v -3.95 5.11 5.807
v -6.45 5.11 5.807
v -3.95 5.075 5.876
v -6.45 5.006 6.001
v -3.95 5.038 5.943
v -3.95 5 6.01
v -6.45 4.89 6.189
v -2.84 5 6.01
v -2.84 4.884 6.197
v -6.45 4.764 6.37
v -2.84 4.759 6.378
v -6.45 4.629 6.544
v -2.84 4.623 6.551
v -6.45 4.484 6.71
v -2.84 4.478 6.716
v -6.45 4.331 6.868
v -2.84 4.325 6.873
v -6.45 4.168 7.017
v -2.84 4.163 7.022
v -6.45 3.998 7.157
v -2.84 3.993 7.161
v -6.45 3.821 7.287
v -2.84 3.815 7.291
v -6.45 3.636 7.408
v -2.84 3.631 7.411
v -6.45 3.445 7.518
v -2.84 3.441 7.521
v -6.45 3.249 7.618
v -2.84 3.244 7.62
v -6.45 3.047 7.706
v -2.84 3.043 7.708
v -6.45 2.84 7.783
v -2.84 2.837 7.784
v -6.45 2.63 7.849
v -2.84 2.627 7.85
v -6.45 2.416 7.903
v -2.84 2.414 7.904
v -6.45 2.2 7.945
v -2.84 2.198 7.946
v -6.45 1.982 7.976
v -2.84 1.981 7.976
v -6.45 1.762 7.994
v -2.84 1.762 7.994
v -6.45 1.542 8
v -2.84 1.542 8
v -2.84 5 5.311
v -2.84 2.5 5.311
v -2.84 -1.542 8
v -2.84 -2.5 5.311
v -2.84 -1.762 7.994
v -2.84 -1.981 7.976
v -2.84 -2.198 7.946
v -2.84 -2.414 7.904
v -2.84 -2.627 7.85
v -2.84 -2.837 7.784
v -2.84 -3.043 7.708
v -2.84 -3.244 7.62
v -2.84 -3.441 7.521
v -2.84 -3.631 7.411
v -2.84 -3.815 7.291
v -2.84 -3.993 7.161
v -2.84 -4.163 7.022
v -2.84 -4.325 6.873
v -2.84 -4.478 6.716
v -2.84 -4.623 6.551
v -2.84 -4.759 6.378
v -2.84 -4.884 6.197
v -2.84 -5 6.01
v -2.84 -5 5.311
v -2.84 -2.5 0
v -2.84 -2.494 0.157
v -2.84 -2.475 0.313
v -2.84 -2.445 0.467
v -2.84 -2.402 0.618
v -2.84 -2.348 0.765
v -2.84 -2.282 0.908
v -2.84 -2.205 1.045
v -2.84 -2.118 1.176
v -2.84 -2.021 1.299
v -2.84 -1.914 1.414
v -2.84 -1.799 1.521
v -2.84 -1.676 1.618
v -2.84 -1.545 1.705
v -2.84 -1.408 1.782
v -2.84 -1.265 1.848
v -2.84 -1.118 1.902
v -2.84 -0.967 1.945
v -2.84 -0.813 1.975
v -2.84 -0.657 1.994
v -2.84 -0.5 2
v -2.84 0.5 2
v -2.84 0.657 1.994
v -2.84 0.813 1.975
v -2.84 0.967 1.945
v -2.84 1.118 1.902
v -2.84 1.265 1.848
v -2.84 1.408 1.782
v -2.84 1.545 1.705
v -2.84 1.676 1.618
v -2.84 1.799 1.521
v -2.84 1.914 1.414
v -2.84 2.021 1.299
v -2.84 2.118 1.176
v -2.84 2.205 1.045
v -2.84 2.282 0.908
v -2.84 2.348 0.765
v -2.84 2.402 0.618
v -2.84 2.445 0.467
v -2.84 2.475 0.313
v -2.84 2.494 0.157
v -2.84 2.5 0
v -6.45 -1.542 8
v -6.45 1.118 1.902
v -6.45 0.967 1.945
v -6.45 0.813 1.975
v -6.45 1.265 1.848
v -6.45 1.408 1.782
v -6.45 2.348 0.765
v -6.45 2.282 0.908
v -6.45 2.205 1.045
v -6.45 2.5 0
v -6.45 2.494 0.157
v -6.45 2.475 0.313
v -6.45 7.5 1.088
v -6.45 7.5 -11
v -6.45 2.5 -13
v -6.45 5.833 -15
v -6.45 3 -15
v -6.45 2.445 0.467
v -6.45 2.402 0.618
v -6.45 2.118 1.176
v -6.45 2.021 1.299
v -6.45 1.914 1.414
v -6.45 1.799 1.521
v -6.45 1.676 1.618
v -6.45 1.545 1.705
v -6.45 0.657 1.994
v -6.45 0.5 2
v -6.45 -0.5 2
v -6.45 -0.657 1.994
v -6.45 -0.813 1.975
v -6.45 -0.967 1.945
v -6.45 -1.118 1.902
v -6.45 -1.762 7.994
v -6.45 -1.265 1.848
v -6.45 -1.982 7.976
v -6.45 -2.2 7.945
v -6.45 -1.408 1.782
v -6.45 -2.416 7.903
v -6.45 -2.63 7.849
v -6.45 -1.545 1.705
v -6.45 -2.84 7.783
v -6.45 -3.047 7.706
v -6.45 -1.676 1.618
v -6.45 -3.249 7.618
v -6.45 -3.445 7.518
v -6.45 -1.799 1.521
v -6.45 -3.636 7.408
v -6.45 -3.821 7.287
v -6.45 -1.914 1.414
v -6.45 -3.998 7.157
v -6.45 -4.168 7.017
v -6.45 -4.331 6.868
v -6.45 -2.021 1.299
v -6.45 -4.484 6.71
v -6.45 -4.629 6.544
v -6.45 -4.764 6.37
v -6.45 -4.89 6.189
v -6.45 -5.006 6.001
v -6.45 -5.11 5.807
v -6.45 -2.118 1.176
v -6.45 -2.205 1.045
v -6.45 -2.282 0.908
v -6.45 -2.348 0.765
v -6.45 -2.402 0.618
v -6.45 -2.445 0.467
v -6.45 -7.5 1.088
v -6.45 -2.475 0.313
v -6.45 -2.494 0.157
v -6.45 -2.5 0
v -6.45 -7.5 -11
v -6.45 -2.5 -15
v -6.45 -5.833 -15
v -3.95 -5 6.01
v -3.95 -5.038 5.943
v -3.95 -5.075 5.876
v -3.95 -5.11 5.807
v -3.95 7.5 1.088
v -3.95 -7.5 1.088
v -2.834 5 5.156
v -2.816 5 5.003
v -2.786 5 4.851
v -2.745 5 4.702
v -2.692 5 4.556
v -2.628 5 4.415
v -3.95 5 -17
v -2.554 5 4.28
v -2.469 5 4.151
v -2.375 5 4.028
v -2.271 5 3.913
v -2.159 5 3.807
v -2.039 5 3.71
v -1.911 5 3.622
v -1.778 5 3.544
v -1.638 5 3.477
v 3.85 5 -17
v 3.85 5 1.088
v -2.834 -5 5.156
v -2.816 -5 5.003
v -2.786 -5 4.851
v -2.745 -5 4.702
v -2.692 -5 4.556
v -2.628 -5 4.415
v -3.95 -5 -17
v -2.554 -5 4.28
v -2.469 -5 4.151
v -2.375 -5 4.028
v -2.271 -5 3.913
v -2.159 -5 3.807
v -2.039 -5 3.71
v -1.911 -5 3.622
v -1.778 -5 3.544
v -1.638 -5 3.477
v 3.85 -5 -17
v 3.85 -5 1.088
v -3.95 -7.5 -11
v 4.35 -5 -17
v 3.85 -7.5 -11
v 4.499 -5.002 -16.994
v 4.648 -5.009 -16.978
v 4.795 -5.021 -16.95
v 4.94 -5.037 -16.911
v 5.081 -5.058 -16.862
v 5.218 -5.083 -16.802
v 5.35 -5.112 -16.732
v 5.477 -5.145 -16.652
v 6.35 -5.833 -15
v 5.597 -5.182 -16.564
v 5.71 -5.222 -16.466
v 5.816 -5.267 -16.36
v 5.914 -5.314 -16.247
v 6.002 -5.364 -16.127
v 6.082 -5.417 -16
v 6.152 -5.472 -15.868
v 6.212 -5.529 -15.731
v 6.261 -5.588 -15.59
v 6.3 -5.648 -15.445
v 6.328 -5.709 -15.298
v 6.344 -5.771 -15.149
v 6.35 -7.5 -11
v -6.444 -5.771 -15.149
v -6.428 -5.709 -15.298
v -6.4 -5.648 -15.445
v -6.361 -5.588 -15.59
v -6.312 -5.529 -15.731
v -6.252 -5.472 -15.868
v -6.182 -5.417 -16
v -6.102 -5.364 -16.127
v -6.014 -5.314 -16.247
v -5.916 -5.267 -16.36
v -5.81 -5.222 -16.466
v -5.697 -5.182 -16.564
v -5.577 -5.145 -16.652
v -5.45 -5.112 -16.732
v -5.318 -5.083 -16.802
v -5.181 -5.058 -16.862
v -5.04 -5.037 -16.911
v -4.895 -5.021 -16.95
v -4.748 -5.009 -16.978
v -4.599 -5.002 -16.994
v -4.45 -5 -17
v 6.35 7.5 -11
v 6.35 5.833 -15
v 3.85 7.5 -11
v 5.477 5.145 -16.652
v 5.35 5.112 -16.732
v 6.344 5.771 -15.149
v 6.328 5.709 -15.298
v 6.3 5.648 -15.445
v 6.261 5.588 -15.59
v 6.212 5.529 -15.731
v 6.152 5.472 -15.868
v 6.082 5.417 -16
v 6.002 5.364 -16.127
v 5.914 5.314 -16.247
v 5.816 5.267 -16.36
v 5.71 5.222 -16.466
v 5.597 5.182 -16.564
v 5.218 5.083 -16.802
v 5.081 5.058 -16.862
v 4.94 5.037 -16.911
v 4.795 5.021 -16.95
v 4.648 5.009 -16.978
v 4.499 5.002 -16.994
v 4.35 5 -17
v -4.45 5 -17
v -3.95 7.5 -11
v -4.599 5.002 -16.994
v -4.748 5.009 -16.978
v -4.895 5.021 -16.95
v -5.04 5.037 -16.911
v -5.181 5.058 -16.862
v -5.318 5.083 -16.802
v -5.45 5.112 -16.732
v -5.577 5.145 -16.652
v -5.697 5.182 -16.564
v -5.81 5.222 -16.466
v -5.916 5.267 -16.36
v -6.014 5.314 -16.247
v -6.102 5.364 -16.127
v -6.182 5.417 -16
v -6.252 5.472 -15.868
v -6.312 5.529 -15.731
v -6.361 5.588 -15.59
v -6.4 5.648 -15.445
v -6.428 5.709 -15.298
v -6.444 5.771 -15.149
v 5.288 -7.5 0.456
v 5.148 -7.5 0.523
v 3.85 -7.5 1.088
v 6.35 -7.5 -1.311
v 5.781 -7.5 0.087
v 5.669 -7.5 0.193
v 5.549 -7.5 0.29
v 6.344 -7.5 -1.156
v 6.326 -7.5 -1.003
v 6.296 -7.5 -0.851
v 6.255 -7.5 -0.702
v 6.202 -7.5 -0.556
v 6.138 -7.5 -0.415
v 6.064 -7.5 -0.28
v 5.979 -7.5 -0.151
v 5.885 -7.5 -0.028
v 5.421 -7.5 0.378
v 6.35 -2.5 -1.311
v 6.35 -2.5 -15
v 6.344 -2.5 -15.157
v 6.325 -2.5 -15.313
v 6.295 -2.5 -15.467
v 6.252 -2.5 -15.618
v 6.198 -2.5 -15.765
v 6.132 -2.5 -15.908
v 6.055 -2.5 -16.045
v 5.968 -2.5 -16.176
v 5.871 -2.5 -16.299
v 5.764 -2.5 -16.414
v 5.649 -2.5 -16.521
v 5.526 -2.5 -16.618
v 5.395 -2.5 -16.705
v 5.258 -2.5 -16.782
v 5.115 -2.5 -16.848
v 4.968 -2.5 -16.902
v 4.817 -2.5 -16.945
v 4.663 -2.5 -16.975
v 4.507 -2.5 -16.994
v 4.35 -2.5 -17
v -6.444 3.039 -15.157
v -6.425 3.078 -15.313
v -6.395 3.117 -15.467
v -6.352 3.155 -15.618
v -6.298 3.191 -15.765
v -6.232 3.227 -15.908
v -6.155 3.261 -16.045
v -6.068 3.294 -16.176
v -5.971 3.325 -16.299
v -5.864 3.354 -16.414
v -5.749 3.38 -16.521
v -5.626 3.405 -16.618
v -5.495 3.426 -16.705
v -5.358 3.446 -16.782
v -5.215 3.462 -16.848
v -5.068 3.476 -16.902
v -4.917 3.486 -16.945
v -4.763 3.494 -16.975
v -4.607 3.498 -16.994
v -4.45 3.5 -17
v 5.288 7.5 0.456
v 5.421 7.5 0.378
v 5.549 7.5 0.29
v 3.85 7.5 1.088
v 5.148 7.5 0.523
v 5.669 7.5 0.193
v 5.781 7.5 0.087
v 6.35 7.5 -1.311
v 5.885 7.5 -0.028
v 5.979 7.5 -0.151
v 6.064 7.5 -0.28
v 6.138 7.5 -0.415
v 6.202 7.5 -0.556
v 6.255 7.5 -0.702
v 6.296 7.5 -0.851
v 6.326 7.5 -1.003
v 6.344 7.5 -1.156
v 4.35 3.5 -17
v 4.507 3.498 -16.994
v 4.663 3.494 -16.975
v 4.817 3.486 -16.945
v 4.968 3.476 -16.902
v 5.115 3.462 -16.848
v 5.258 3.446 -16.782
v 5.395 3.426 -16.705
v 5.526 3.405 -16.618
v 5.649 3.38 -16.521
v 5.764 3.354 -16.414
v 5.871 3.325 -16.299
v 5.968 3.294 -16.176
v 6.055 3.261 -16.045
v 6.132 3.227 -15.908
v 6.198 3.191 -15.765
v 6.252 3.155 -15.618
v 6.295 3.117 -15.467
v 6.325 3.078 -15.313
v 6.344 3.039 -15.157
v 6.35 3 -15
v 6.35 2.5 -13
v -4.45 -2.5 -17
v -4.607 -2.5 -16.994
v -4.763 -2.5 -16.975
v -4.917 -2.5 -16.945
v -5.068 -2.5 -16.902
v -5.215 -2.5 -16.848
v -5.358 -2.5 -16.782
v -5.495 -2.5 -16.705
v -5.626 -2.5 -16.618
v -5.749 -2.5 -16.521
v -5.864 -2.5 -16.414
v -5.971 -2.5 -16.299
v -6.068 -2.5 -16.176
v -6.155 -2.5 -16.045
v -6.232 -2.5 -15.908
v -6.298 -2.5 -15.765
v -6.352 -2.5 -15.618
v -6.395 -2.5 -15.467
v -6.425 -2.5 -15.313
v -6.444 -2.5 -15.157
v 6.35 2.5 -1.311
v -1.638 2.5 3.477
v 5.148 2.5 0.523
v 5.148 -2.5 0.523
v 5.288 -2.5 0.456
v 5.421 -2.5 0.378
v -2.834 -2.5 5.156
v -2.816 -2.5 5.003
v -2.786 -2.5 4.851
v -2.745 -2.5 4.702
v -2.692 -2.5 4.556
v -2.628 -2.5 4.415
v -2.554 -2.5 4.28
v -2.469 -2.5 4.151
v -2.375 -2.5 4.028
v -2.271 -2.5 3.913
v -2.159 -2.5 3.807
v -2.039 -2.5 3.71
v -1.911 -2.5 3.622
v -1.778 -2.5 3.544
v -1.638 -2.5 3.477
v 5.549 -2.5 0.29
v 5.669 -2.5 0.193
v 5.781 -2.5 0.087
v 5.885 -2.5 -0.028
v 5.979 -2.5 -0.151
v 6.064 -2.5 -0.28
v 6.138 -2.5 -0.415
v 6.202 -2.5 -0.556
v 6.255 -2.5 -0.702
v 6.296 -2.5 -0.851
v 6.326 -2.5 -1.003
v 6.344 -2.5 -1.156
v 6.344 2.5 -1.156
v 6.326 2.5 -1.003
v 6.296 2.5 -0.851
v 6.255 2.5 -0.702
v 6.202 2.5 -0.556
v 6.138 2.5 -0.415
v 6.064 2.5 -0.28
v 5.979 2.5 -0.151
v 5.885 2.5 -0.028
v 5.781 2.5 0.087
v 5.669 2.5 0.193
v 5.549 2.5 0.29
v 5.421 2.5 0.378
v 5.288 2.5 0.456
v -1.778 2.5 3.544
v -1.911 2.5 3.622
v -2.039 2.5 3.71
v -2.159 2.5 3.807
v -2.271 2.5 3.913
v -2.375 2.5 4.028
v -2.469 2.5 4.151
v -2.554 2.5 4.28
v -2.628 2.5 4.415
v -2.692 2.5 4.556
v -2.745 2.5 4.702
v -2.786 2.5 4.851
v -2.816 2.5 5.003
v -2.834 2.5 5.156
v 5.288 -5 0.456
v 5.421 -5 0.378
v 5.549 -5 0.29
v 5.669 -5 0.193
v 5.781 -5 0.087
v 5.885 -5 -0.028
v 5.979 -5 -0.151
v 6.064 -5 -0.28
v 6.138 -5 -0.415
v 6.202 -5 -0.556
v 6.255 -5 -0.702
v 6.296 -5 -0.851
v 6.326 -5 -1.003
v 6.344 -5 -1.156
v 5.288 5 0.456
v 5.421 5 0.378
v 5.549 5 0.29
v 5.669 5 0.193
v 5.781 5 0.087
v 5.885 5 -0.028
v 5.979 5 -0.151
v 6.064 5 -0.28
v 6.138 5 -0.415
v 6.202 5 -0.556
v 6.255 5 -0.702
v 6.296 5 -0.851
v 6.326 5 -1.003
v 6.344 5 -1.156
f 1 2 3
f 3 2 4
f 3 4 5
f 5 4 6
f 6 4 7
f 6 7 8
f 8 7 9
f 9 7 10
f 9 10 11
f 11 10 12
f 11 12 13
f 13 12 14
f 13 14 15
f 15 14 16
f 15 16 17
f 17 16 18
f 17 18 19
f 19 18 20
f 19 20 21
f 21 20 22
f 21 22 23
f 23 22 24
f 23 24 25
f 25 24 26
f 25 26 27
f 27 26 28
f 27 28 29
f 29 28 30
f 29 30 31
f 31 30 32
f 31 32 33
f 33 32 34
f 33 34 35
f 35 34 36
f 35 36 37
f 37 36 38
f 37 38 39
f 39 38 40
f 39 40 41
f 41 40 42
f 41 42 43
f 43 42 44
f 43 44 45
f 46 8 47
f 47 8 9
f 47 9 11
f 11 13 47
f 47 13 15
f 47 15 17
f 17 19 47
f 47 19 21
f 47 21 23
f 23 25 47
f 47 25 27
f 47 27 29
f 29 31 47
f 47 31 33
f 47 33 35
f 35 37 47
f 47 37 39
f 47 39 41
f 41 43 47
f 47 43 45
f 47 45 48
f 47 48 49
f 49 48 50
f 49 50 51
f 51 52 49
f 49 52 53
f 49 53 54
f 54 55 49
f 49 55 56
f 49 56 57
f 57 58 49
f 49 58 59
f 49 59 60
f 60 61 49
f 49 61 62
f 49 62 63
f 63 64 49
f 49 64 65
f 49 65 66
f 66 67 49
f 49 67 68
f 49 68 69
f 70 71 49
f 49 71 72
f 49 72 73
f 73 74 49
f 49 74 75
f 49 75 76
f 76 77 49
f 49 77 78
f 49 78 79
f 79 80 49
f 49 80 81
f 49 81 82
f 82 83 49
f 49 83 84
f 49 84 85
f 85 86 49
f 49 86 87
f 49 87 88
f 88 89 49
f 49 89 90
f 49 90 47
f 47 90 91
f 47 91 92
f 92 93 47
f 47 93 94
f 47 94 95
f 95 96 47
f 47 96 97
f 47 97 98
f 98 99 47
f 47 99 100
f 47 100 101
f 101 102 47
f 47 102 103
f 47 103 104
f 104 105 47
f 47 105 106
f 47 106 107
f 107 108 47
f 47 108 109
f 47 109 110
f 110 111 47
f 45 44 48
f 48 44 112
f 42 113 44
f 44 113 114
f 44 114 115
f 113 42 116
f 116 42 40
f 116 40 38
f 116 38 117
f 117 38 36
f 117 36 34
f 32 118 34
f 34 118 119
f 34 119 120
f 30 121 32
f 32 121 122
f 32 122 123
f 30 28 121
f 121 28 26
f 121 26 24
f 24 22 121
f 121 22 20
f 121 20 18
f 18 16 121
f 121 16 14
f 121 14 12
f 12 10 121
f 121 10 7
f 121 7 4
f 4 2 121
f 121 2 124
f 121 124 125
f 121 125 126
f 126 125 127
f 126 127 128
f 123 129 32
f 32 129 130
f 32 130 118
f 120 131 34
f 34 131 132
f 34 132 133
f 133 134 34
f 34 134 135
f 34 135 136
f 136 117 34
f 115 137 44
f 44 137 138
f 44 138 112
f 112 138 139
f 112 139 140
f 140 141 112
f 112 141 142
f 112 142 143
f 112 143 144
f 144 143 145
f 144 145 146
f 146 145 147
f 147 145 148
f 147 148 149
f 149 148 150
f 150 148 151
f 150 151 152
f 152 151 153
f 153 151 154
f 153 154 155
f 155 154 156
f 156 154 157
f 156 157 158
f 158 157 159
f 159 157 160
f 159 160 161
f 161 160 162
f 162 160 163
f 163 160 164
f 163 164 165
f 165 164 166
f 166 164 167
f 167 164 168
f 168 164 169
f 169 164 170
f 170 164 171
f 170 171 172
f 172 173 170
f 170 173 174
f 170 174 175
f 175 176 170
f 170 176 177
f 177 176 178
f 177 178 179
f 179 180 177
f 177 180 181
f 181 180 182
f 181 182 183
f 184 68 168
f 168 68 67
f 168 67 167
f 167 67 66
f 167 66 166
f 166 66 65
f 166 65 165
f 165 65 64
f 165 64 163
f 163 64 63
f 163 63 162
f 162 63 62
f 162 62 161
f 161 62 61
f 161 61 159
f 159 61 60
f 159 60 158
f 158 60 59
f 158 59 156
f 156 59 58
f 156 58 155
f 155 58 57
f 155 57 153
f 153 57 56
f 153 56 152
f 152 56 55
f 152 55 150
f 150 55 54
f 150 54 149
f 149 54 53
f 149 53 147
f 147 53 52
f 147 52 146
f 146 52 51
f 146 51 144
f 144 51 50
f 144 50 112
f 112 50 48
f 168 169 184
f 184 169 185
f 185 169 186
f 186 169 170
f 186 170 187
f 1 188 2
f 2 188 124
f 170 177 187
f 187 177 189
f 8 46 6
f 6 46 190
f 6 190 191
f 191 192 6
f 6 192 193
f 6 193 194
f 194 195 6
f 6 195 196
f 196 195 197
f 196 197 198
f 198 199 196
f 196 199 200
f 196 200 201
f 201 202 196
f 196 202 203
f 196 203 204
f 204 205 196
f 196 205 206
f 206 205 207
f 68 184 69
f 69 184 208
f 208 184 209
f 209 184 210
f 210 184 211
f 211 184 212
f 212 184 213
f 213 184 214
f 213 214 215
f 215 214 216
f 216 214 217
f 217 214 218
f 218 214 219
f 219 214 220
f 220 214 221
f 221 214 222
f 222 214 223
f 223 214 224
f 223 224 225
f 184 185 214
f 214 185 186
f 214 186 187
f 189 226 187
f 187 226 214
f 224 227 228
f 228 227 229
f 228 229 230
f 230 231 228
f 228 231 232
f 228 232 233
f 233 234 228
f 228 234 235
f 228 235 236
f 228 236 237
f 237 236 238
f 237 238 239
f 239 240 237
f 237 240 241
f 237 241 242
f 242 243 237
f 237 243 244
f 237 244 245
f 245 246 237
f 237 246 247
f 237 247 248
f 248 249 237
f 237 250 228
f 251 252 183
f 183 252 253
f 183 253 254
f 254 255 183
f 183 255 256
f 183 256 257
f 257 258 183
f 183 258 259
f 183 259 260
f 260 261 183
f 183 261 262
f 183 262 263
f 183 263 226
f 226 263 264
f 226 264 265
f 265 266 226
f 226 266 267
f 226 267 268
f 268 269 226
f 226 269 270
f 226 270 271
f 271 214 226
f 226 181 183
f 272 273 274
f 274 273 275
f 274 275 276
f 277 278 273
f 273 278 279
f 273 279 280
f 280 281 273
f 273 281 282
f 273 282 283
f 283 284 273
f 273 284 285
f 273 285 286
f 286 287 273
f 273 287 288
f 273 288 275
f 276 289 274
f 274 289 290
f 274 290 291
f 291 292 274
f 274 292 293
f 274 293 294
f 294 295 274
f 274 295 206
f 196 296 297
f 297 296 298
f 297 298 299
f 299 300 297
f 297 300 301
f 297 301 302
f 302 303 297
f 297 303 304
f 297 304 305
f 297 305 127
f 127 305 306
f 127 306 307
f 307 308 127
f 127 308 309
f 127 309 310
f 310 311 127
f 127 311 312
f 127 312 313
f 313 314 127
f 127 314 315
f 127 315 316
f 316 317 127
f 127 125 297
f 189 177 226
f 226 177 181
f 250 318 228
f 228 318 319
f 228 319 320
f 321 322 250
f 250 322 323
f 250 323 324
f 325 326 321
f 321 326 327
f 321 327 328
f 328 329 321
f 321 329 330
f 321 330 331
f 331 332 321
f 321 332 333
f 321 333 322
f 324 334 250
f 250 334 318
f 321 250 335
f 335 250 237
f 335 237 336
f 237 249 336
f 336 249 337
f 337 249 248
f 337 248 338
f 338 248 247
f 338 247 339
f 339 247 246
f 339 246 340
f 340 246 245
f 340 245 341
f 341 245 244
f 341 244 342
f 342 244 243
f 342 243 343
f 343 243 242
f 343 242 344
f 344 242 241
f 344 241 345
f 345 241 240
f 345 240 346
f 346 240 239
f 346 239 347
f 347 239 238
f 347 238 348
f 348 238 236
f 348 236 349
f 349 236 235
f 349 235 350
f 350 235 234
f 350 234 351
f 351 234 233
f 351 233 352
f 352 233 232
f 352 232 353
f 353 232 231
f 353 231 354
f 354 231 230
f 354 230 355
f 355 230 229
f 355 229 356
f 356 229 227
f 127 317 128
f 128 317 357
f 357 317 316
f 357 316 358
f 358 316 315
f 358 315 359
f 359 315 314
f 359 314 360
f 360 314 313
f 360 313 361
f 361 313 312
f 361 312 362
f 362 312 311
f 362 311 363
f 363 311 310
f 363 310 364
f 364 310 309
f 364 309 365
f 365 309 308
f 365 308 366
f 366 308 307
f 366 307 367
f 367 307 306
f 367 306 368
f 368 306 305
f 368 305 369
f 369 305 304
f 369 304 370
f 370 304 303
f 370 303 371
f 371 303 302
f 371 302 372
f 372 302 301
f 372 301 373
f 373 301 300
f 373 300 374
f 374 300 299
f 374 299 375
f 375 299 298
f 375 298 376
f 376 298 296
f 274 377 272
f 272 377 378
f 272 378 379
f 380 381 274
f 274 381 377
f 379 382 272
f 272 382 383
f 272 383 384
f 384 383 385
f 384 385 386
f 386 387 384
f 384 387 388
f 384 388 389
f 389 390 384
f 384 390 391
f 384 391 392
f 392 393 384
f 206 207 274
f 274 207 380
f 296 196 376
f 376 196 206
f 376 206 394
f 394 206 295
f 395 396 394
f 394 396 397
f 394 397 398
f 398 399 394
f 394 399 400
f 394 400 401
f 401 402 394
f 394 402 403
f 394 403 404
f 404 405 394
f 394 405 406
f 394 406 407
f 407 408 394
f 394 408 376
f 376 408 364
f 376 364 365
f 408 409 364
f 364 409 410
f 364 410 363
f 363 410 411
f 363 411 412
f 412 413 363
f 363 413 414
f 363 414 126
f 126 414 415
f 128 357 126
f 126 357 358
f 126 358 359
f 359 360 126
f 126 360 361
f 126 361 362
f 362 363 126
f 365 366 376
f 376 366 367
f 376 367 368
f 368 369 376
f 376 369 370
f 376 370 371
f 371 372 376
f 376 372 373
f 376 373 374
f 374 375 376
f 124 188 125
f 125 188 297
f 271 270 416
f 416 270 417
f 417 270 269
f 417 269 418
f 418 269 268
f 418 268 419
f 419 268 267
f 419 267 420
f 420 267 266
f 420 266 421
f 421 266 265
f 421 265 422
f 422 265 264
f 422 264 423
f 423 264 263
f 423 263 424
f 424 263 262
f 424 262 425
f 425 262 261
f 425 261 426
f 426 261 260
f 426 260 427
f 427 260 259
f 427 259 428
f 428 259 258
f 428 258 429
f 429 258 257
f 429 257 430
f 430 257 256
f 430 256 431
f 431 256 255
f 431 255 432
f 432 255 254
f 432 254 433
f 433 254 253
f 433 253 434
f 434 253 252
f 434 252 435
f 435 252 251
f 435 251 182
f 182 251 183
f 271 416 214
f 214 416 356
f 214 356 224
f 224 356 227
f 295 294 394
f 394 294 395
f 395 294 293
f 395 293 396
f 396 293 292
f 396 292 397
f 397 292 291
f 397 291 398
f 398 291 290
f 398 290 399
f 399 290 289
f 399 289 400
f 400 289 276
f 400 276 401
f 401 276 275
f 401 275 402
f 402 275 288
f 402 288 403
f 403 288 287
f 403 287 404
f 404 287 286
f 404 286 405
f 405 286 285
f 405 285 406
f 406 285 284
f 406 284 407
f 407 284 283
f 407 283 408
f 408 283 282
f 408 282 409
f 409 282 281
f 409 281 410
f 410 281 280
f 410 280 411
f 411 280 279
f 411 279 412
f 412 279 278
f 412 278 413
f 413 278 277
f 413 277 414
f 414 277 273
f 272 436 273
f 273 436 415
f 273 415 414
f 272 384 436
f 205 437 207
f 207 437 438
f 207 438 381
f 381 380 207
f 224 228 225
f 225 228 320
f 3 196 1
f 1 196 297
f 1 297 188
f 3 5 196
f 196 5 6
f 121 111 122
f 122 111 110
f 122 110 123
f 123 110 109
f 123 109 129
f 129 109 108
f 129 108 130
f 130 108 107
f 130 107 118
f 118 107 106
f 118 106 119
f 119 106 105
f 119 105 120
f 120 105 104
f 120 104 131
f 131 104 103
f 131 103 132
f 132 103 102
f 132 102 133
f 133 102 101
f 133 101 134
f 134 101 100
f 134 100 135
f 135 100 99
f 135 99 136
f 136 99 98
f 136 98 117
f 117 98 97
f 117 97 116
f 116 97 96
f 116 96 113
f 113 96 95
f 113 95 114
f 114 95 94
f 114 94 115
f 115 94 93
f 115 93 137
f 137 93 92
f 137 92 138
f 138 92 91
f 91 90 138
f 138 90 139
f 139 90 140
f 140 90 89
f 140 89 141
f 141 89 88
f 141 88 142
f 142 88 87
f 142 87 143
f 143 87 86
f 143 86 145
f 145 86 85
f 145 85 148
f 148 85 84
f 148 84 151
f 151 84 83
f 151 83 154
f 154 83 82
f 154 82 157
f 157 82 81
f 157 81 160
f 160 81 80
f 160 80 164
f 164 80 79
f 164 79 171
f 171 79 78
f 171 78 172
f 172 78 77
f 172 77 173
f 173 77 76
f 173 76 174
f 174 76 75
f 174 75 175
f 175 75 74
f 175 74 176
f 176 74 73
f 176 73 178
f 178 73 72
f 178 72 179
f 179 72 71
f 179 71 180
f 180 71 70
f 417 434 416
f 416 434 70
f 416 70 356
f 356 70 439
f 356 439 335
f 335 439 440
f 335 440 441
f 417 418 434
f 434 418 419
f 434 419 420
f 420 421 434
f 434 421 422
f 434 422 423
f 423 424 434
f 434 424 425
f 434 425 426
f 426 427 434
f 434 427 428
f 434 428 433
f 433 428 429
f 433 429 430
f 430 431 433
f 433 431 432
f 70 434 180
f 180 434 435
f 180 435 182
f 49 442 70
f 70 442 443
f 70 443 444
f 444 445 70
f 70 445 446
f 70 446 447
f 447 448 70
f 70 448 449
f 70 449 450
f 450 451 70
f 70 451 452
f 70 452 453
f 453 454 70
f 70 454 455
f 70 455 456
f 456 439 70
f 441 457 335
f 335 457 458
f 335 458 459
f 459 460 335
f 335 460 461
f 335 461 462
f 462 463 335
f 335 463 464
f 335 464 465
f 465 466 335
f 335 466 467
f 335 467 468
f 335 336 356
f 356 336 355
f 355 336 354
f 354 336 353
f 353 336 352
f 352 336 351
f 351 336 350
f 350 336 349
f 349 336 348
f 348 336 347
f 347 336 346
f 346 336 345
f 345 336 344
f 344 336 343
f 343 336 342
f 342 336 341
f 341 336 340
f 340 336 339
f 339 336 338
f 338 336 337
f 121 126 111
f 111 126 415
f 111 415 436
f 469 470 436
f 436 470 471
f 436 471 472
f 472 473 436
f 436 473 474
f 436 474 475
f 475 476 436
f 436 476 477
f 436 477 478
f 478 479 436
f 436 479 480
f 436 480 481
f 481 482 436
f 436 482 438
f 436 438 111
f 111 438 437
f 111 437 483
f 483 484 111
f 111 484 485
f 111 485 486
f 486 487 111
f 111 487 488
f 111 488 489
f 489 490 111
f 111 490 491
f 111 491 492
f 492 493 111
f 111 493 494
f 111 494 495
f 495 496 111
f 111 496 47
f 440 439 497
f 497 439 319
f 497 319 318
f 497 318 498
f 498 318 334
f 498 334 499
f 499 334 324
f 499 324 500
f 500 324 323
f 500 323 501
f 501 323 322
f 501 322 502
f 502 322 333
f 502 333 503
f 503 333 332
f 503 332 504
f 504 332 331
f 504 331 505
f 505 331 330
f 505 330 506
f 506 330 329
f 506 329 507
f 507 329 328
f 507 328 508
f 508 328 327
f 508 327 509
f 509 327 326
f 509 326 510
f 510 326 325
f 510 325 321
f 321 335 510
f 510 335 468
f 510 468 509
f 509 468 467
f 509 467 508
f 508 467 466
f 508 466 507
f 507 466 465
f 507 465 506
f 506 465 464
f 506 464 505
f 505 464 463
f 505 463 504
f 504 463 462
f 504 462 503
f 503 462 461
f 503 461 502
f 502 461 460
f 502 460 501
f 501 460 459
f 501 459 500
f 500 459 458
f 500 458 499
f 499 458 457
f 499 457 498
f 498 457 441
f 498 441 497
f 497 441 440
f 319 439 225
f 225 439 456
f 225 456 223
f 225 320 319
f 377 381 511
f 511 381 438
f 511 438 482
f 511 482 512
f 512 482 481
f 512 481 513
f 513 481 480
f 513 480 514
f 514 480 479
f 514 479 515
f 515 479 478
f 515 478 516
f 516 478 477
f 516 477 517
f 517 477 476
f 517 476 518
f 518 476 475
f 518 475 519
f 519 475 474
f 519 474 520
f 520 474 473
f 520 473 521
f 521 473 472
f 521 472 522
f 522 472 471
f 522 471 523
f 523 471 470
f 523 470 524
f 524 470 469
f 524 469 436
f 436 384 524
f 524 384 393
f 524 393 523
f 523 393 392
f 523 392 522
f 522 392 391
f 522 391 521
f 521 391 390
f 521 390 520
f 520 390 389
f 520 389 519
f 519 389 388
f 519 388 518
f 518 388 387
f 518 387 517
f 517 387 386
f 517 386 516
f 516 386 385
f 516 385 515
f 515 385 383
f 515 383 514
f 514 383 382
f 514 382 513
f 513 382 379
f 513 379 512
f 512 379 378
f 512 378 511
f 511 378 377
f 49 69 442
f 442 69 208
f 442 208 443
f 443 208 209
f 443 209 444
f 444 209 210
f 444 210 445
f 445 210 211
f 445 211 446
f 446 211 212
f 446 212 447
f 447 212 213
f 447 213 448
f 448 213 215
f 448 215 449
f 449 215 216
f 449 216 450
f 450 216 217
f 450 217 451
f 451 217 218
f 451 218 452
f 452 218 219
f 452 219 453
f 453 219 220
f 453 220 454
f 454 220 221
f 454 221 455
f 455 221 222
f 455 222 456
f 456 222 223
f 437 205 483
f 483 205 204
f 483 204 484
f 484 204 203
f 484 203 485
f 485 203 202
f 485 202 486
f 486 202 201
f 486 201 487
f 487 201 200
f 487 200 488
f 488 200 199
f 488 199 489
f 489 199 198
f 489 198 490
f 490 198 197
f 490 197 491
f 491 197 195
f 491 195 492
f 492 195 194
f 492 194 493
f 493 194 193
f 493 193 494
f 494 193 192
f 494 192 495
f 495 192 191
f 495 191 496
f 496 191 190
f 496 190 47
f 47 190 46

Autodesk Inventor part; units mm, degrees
ref_plane "YZ Plane" through (0, 0, 0) normal (1, 0, 0) x (0, 1, 0)
ref_plane "XZ Plane" through (0, 0, 0) normal (0, 1, 0) x (-1, 0, 0)
ref_plane "XY Plane" through (0, 0, 0) normal (0, 0, 1) x (1, 0, 0)
sketch "Sketch1" plane through (0, 0, 0) normal (0, 0, 1) x (1, 0, 0)
  line L0 (-4.78, -2.9) -> (4.78, -2.9)
  line L1 (6.35, 2.9) -> (-6.35, 2.9)
  line L2 (-4.78, -2.9) -> (-5.08, -2.9)
  line L3 (-6.35, -2.9) -> (-5.08, -2.9)
  line L4 (-6.35, 2.9) -> (-6.35, -2.9)
  line L5 (5.08, -2.9) -> (4.78, -2.9)
  line L6 (5.08, -2.9) -> (6.35, -2.9)
  line L7 (6.35, 3) -> (-6.45, 3)
  line L8 (-6.45, 3) -> (-6.45, -3)
  line L9 (-6.45, -3) -> (-5.08, -3)
  line L10 (-5.08, -3) -> (-4.78, -3)
  line L11 (-4.78, -3) -> (4.78, -3)
  line L12 (4.78, -3) -> (5.08, -3)
  line L13 (5.08, -3) -> (6.35, -3)
  line L14 (6.35, 5) -> (-8.45, 5)
  line L15 (-8.45, 5) -> (-8.45, -5)
  line L16 (-8.45, -5) -> (-5.08, -5)
  line L17 (-5.08, -5) -> (-4.78, -5)
  line L18 (-4.78, -5) -> (4.78, -5)
  line L19 (4.78, -5) -> (5.08, -5)
  line L20 (5.08, -5) -> (6.35, -5)
  line L21 (6.35, 3) -> (6.35, 5)
  line L22 (6.35, -3) -> (6.35, -5)
  point P0 (0, 0)
extrude "Extrusion1" add sketch "Sketch1" against normal blind 2
sketch "Sketch2" plane through (-8.45, -5, 0) normal (0, -1, 0) x (1, 0, 0)
  line L0 (2.1, -8) -> (2.1, -11.17) projected
  line L1 (0, 0) -> (14.8, 0) projected
  line L2 (2.1, -8) -> (3.37, -8) projected
  line L3 (14.8, 0) -> (14.8, -2) projected
  line L4 (2, 0) -> (14.8, 0) projected
  line L5 (2, 0) -> (14.8, 0)
  line L6 (14.8, 0) -> (14.8, -8)
  line L7 (14.8, -8) -> (2, -8)
  line L8 (2, -8) -> (2, 0)
  point P0 (8.45, 0)
extrude "Extrusion2" add sketch "Sketch2" against normal up to surface (2 mm away)
sketch "Sketch3" plane through (-8.45, 5, 0) normal (0, 1, 0) x (1, 0, 0)
  line L0 (0, 0) -> (14.8, 0) projected
  line L1 (0, 0) -> (0, 2) projected
  line L2 (2, 2) -> (0, 2) projected
  line L3 (2, 2) -> (2, 8) projected
  line L4 (2, 8) -> (14.8, 8) projected
  line L5 (14.8, 0) -> (14.8, 8) projected
  point P0 (8.45, 0)
extrude "Extrusion3" add sketch "Sketch3" against normal up to surface (2 mm away)
sketch "Sketch4" plane through (-8.45, -5, 0) normal (0, -1, 0) x (1, 0, 0)
  line L0 (2, -2) -> (2, -8) projected
  line L1 (0, 0) -> (14.8, 0) projected
  line L2 (3.67, -0.6428) -> (3.67, -14.175) projected
  line L3 (5.61, -0.6428) -> (5.61, -14.175) projected
  line L4 (2, -2) -> (5.61, -2)
  line L5 (5.61, -2) -> (5.61, 4)
  line L6 (5.61, 4) -> (2, 4)
  line L7 (2, 4) -> (2, -2)
  point P0 (8.45, 0)
  point P1 (2, 0)
  point P2 (5.61, 0)
  dimension "d8" = 6
extrude "Extrusion4" add sketch "Sketch4" against normal up to surface (10 mm away) contours L7 L6 L5 L1
sketch "Sketch5" plane through (-8.45, -5, -2) normal (0, -1, 0) x (1, 0, 0)
  line L0 (0, 2) -> (0, 0) projected
  line L1 (0, 2) -> (2, 2) projected
  line L2 (2, 0) -> (0, 0) projected
  line L3 (0, 2) -> (2, 2)
  line L4 (2, 2) -> (2, 0)
  line L5 (2, 0) -> (0, 0)
  line L6 (0, 0) -> (0, 2)
  point P0 (8.45, 2)
extrude "Extrusion5" cut sketch "Sketch5" against normal through all
sketch "Sketch6" plane through (-6.45, -5, -8) normal (0, -1, 0) x (1, 0, 0)
  line L0 (3.61, 8) -> (3.61, 12) projected
  line L1 (3.61, 8) -> (12.8, 8) projected
  line L2 (3.61, 12) -> (12.8, 8)
  point P0 (6.45, 8)
extrude "Extrusion6" add sketch "Sketch6" against normal up to surface (2 mm away)
sketch "Sketch7" plane through (-6.45, 5, -8) normal (0, 1, 0) x (1, 0, 0)
  line L0 (12.8, -8) -> (3.61, -12) projected
  line L1 (12.8, -8) -> (3.61, -8) projected
  line L2 (3.61, -8) -> (3.61, -12) projected
  point P0 (6.45, -8)
extrude "Extrusion7" add sketch "Sketch7" against normal up to surface (2 mm away)
sketch "Sketch8" plane through (-2.84, -3, 0) normal (1, 0, 0) x (0, 0, -1)
  line L0 (0, 6) -> (-4, 6) projected
  line L1 (-4, 0) -> (-4, 6) projected
  line L2 (-4, 0) -> (0, 0) projected
  line L3 (0, 0) -> (0, 6) projected
  line L4 (-4, 0) -> (0, 0) projected
  line L5 (-2, 0) -> (-2, 6)
  point P0 (0, 3)
  point P1 (-2, 0)
extrude "Extrusion8" cut sketch "Sketch8" against normal blind 10 contours L3 L2 L5 L0
sketch "Sketch9" plane through (-6.45, -5, 4) normal (0, 0, 1) x (1, 0, 0)
  line L0 (0, 8) -> (0, 2) projected
  line L1 (3.61, 10) -> (0, 10) projected
  line L2 (0, 0) -> (0, 10) projected
  line L3 (3.61, 0) -> (0, 0) projected
  line L4 (3.61, 0) -> (3.61, 2) projected
  line L5 (3.61, 2) -> (3.61, 8) projected
  line L6 (3.61, 8) -> (3.61, 10) projected
  point P0 (6.45, 5)
  point P1 (0, 2)
extrude "Extrusion9" add sketch "Sketch9" along normal blind 4
fillet "Fillet1" radius 2 4 edges at (-2.84, 4, 4) (-2.84, -4, 4) (6.35, 4, 0) (6.35, -4, 0)
sketch "Sketch10" plane through (6.35, -5, -8) normal (0, 0, -1) x (-1, 0, 0)
  line L0 (12.8, 2) -> (0, 2) projected
  line L1 (0, 0) -> (0, 2) projected
  line L2 (12.8, 0) -> (0, 0) projected
  line L3 (12.8, 0) -> (12.8, 2) projected
  line L4 (0, 8) -> (12.8, 8) projected
  line L5 (12.8, 10) -> (12.8, 8) projected
  line L6 (0, 10) -> (12.8, 10) projected
  line L7 (0, 10) -> (0, 8) projected
  point P0 (6.35, 5)
extrude "Extrusion10" add sketch "Sketch10" along normal blind 4
sketch "Sketch11" plane through (-6.45, 3, 2) normal (0, -1, 0) x (1, 0, 0)
  arc A0 (12.8, -3.3107) -> (11.5982, -1.4769) centre (10.8, -3.3107) ccw projected
  line L0 (4.8118, 1.4769) -> (11.5982, -1.4769) projected
  arc A1 (3.61, 3.3107) -> (4.8118, 1.4769) centre (5.61, 3.3107) ccw projected
  line L1 (3.61, 0) -> (3.61, 3.3107) projected
  line L2 (3.61, 0) -> (0, 0) projected
  line L3 (0, 0) -> (0, -14) projected
  line L4 (12.8, -14) -> (0, -14) projected
  line L5 (12.8, -3.3107) -> (12.8, -14) projected
  point P0 (6.45, -2)
extrude "Extrusion11" add sketch "Sketch11" along normal blind 0.5
sketch "Sketch12" plane through (-6.45, -3, 2) normal (0, 1, 0) x (1, 0, 0)
  arc A0 (11.5982, 1.4769) -> (12.8, 3.3107) centre (10.8, 3.3107) ccw projected
  line L0 (12.8, 3.3107) -> (12.8, 14) projected
  line L1 (0, 14) -> (12.8, 14) projected
  line L2 (0, 0) -> (0, 14) projected
  line L3 (3.61, 0) -> (0, 0) projected
  line L4 (3.61, -3.3107) -> (3.61, 0) projected
  arc A1 (4.8118, -1.4769) -> (3.61, -3.3107) centre (5.61, -3.3107) ccw projected
  line L5 (11.5982, 1.4769) -> (4.8118, -1.4769) projected
  point P0 (6.45, 2)
extrude "Extrusion12" add sketch "Sketch12" along normal blind 0.5
fillet "Fillet3" radius 2 2 edges at (-4.645, -2.5, 2) (-4.645, 2.5, 2)
sketch "Sketch14" plane through (6.35, -5, -12) normal (0, 0, -1) x (-1, 0, 0)
  line L0 (0, 0) -> (0, 2.5) projected
  line L1 (0, 0) -> (12.8, 0) projected
  line L2 (12.8, 0) -> (12.8, 2.5) projected
  line L3 (0, 2.5) -> (12.8, 2.5) projected
  line L4 (12.8, 10) -> (12.8, 7.5) projected
  line L5 (12.8, 10) -> (0, 10) projected
  line L6 (0, 10) -> (0, 7.5) projected
  line L7 (12.8, 7.5) -> (0, 7.5) projected
  point P0 (6.35, 5)
extrude "Extrusion13" add sketch "Sketch14" along normal blind 5
sketch "Sketch15" plane through (6.35, -5, -17) normal (0, 0, -1) x (-1, 0, 0)
  line L0 (12.8, 2.5) -> (0, 2.5) projected
  line L1 (0, 2.5) -> (0, 0) projected
  line L2 (0, 0) -> (12.8, 0) projected
  line L3 (12.8, 0) -> (12.8, 2.5) projected
  line L4 (0, 7.5) -> (12.8, 7.5) projected
  line L5 (12.8, 7.5) -> (12.8, 10) projected
  line L6 (12.8, 10) -> (0, 10) projected
  line L7 (0, 10) -> (0, 7.5) projected
  line L8 (12.8, 0) -> (10.3, 0)
  line L9 (10.3, 0) -> (10.3, -2.5)
  line L10 (10.3, -2.5) -> (12.8, -2.5)
  line L11 (12.8, -2.5) -> (12.8, 0)
  line L12 (12.8, 10) -> (10.3, 10)
  line L13 (10.3, 10) -> (10.3, 12.5)
  line L14 (10.3, 12.5) -> (12.8, 12.5)
  line L15 (12.8, 12.5) -> (12.8, 10)
  line L16 (0, 10) -> (2.5, 10)
  line L17 (2.5, 10) -> (2.5, 12.5)
  line L18 (2.5, 12.5) -> (0, 12.5)
  line L19 (0, 12.5) -> (0, 10)
  line L20 (0, 0) -> (2.5, 0)
  line L21 (2.5, 0) -> (2.5, -2.5)
  line L22 (2.5, -2.5) -> (0, -2.5)
  line L23 (0, -2.5) -> (0, 0)
  point P0 (6.35, 5)
  point P1 (2.5, 10)
  point P2 (2.5, 0)
  dimension "d39" = 2.5
  dimension "d40" = 2.5
  dimension "d41" = 2.5
  dimension "d42" = 2.5
  dimension "d43" = 2.5
  dimension "d44" = 2.5
  dimension "d45" = 2.5
  dimension "d46" = 2.5
extrude "Extrusion14" add sketch "Sketch15" against normal up to surface (25 mm away) contours L11 L10 L9 L2 | L2 L21 L22 L23 | L19 L18 L17 L6 | L6 L13 L14 L15
sketch "Sketch16" plane through (3.85, 5, 8) normal (0, -1, 0) x (1, 0, 0)
  line L0 (0, -6.9119) -> (1.2982, -7.4769) projected
  arc A0 (2.5, -9.3107) -> (1.2982, -7.4769) centre (0.5, -9.3107) ccw projected
  line L1 (2.5, -9.3107) -> (2.5, 0) projected
  line L2 (2.5, 0) -> (0, 0) projected
  line L3 (0, -6.9119) -> (0, 0) projected
  point P0 (-3.85, -8)
extrude "Extrusion15" cut sketch "Sketch16" along normal mid plane 31
fillet "Fillet5" radius 2 4 edges at (6.35, 5, -17) (-6.45, 5, -17) (6.35, -5, -17) (-6.45, -5, -17)
chamfer "Chamfer3" distance 2.5 angle 45 2 edges at (-5.2, -7.5, 8) (-5.2, 7.5, 8)
sketch "Sketch17" plane through (-6.45, 2.5, -15) normal (-1, 0, 0) x (0, 0, 1)
  line L0 (-2, 5) -> (-2, 0) projected
  line L1 (-2, 5) -> (0, 5) projected
  line L2 (0, 5) -> (20.5, 5) projected
  line L3 (0, 0) -> (-2, 0) projected
  line L4 (15, 0) -> (0, 0) projected
  line L5 (-2, 0) -> (-2, 1)
  line L6 (-2, 0) -> (-2, 5) projected
  line L7 (-2, 0) -> (2, 0)
  line L8 (2, 0) -> (-2, 1)
  point P0 (15, -2.5)
  point P1 (-2, 1)
  dimension "d55" = 1
  dimension "d56" = 4
extrude "Extrusion16" cut sketch "Sketch17" against normal blind 31
sketch "Sketch18" plane through (-6.45, -7.5, -15) normal (-1, 0, 0) x (0, 0, 1)
  line L0 (16.0881, 12.5) -> (-2, 12.5) projected
  line L1 (0, 15) -> (20.5, 15) projected
  line L2 (-2, 2.5) -> (16.0881, 2.5) projected
  line L3 (0, 0) -> (20.5, 0) projected
  line L4 (-2, 15) -> (0, 15) projected
  line L5 (-2, 15) -> (-2, 11) projected
  line L6 (-2, 5) -> (-2, 0) projected
  line L7 (0, 0) -> (-2, 0) projected
  line L8 (-2, 0) -> (4, 0)
  line L9 (4, 0) -> (-2, 2.5)
  line L10 (-2, 15) -> (4, 15)
  line L11 (4, 15) -> (-2, 12.5)
  point P0 (15, 7.5)
  dimension "d59" = 6
  dimension "d60" = 6
extrude "Extrusion17" cut sketch "Sketch18" against normal through all
sketch "Sketch19" plane through (-6.45, -2.5, -15) normal (-1, 0, 0) x (0, 0, 1)
  line L0 (23, -2.5) -> (23, 7.5) projected
  line L1 (20.5, 10) -> (23, 7.5) projected
  line L2 (23, -2.5) -> (20.5, -5) projected
  line L3 (4, 10) -> (20.5, 10) projected
  line L4 (4, -5) -> (20.5, -5) projected
  line L5 (16.0881, -5) -> (16.0881, -2.5) projected
  line L6 (16.0881, 7.5) -> (16.0881, 10) projected
  line L7 (23, -2.5) -> (23, -1.5)
  line L8 (23, -1.5) -> (16.0881, -5)
  line L9 (23, 7.5) -> (23, 6.5)
  line L10 (23, 6.5) -> (16.0881, 10)
  point P0 (15, 2.5)
  dimension "d63" = 1
  dimension "d64" = 1
extrude "Extrusion18" cut sketch "Sketch19" against normal up to surface (3.61 mm away)
fillet "Fillet6" radius 4 2 edges at (-4.645, -4, 8) (-4.645, 4, 8)
properties part number "MolexClipper_vertical_3DPrint"
